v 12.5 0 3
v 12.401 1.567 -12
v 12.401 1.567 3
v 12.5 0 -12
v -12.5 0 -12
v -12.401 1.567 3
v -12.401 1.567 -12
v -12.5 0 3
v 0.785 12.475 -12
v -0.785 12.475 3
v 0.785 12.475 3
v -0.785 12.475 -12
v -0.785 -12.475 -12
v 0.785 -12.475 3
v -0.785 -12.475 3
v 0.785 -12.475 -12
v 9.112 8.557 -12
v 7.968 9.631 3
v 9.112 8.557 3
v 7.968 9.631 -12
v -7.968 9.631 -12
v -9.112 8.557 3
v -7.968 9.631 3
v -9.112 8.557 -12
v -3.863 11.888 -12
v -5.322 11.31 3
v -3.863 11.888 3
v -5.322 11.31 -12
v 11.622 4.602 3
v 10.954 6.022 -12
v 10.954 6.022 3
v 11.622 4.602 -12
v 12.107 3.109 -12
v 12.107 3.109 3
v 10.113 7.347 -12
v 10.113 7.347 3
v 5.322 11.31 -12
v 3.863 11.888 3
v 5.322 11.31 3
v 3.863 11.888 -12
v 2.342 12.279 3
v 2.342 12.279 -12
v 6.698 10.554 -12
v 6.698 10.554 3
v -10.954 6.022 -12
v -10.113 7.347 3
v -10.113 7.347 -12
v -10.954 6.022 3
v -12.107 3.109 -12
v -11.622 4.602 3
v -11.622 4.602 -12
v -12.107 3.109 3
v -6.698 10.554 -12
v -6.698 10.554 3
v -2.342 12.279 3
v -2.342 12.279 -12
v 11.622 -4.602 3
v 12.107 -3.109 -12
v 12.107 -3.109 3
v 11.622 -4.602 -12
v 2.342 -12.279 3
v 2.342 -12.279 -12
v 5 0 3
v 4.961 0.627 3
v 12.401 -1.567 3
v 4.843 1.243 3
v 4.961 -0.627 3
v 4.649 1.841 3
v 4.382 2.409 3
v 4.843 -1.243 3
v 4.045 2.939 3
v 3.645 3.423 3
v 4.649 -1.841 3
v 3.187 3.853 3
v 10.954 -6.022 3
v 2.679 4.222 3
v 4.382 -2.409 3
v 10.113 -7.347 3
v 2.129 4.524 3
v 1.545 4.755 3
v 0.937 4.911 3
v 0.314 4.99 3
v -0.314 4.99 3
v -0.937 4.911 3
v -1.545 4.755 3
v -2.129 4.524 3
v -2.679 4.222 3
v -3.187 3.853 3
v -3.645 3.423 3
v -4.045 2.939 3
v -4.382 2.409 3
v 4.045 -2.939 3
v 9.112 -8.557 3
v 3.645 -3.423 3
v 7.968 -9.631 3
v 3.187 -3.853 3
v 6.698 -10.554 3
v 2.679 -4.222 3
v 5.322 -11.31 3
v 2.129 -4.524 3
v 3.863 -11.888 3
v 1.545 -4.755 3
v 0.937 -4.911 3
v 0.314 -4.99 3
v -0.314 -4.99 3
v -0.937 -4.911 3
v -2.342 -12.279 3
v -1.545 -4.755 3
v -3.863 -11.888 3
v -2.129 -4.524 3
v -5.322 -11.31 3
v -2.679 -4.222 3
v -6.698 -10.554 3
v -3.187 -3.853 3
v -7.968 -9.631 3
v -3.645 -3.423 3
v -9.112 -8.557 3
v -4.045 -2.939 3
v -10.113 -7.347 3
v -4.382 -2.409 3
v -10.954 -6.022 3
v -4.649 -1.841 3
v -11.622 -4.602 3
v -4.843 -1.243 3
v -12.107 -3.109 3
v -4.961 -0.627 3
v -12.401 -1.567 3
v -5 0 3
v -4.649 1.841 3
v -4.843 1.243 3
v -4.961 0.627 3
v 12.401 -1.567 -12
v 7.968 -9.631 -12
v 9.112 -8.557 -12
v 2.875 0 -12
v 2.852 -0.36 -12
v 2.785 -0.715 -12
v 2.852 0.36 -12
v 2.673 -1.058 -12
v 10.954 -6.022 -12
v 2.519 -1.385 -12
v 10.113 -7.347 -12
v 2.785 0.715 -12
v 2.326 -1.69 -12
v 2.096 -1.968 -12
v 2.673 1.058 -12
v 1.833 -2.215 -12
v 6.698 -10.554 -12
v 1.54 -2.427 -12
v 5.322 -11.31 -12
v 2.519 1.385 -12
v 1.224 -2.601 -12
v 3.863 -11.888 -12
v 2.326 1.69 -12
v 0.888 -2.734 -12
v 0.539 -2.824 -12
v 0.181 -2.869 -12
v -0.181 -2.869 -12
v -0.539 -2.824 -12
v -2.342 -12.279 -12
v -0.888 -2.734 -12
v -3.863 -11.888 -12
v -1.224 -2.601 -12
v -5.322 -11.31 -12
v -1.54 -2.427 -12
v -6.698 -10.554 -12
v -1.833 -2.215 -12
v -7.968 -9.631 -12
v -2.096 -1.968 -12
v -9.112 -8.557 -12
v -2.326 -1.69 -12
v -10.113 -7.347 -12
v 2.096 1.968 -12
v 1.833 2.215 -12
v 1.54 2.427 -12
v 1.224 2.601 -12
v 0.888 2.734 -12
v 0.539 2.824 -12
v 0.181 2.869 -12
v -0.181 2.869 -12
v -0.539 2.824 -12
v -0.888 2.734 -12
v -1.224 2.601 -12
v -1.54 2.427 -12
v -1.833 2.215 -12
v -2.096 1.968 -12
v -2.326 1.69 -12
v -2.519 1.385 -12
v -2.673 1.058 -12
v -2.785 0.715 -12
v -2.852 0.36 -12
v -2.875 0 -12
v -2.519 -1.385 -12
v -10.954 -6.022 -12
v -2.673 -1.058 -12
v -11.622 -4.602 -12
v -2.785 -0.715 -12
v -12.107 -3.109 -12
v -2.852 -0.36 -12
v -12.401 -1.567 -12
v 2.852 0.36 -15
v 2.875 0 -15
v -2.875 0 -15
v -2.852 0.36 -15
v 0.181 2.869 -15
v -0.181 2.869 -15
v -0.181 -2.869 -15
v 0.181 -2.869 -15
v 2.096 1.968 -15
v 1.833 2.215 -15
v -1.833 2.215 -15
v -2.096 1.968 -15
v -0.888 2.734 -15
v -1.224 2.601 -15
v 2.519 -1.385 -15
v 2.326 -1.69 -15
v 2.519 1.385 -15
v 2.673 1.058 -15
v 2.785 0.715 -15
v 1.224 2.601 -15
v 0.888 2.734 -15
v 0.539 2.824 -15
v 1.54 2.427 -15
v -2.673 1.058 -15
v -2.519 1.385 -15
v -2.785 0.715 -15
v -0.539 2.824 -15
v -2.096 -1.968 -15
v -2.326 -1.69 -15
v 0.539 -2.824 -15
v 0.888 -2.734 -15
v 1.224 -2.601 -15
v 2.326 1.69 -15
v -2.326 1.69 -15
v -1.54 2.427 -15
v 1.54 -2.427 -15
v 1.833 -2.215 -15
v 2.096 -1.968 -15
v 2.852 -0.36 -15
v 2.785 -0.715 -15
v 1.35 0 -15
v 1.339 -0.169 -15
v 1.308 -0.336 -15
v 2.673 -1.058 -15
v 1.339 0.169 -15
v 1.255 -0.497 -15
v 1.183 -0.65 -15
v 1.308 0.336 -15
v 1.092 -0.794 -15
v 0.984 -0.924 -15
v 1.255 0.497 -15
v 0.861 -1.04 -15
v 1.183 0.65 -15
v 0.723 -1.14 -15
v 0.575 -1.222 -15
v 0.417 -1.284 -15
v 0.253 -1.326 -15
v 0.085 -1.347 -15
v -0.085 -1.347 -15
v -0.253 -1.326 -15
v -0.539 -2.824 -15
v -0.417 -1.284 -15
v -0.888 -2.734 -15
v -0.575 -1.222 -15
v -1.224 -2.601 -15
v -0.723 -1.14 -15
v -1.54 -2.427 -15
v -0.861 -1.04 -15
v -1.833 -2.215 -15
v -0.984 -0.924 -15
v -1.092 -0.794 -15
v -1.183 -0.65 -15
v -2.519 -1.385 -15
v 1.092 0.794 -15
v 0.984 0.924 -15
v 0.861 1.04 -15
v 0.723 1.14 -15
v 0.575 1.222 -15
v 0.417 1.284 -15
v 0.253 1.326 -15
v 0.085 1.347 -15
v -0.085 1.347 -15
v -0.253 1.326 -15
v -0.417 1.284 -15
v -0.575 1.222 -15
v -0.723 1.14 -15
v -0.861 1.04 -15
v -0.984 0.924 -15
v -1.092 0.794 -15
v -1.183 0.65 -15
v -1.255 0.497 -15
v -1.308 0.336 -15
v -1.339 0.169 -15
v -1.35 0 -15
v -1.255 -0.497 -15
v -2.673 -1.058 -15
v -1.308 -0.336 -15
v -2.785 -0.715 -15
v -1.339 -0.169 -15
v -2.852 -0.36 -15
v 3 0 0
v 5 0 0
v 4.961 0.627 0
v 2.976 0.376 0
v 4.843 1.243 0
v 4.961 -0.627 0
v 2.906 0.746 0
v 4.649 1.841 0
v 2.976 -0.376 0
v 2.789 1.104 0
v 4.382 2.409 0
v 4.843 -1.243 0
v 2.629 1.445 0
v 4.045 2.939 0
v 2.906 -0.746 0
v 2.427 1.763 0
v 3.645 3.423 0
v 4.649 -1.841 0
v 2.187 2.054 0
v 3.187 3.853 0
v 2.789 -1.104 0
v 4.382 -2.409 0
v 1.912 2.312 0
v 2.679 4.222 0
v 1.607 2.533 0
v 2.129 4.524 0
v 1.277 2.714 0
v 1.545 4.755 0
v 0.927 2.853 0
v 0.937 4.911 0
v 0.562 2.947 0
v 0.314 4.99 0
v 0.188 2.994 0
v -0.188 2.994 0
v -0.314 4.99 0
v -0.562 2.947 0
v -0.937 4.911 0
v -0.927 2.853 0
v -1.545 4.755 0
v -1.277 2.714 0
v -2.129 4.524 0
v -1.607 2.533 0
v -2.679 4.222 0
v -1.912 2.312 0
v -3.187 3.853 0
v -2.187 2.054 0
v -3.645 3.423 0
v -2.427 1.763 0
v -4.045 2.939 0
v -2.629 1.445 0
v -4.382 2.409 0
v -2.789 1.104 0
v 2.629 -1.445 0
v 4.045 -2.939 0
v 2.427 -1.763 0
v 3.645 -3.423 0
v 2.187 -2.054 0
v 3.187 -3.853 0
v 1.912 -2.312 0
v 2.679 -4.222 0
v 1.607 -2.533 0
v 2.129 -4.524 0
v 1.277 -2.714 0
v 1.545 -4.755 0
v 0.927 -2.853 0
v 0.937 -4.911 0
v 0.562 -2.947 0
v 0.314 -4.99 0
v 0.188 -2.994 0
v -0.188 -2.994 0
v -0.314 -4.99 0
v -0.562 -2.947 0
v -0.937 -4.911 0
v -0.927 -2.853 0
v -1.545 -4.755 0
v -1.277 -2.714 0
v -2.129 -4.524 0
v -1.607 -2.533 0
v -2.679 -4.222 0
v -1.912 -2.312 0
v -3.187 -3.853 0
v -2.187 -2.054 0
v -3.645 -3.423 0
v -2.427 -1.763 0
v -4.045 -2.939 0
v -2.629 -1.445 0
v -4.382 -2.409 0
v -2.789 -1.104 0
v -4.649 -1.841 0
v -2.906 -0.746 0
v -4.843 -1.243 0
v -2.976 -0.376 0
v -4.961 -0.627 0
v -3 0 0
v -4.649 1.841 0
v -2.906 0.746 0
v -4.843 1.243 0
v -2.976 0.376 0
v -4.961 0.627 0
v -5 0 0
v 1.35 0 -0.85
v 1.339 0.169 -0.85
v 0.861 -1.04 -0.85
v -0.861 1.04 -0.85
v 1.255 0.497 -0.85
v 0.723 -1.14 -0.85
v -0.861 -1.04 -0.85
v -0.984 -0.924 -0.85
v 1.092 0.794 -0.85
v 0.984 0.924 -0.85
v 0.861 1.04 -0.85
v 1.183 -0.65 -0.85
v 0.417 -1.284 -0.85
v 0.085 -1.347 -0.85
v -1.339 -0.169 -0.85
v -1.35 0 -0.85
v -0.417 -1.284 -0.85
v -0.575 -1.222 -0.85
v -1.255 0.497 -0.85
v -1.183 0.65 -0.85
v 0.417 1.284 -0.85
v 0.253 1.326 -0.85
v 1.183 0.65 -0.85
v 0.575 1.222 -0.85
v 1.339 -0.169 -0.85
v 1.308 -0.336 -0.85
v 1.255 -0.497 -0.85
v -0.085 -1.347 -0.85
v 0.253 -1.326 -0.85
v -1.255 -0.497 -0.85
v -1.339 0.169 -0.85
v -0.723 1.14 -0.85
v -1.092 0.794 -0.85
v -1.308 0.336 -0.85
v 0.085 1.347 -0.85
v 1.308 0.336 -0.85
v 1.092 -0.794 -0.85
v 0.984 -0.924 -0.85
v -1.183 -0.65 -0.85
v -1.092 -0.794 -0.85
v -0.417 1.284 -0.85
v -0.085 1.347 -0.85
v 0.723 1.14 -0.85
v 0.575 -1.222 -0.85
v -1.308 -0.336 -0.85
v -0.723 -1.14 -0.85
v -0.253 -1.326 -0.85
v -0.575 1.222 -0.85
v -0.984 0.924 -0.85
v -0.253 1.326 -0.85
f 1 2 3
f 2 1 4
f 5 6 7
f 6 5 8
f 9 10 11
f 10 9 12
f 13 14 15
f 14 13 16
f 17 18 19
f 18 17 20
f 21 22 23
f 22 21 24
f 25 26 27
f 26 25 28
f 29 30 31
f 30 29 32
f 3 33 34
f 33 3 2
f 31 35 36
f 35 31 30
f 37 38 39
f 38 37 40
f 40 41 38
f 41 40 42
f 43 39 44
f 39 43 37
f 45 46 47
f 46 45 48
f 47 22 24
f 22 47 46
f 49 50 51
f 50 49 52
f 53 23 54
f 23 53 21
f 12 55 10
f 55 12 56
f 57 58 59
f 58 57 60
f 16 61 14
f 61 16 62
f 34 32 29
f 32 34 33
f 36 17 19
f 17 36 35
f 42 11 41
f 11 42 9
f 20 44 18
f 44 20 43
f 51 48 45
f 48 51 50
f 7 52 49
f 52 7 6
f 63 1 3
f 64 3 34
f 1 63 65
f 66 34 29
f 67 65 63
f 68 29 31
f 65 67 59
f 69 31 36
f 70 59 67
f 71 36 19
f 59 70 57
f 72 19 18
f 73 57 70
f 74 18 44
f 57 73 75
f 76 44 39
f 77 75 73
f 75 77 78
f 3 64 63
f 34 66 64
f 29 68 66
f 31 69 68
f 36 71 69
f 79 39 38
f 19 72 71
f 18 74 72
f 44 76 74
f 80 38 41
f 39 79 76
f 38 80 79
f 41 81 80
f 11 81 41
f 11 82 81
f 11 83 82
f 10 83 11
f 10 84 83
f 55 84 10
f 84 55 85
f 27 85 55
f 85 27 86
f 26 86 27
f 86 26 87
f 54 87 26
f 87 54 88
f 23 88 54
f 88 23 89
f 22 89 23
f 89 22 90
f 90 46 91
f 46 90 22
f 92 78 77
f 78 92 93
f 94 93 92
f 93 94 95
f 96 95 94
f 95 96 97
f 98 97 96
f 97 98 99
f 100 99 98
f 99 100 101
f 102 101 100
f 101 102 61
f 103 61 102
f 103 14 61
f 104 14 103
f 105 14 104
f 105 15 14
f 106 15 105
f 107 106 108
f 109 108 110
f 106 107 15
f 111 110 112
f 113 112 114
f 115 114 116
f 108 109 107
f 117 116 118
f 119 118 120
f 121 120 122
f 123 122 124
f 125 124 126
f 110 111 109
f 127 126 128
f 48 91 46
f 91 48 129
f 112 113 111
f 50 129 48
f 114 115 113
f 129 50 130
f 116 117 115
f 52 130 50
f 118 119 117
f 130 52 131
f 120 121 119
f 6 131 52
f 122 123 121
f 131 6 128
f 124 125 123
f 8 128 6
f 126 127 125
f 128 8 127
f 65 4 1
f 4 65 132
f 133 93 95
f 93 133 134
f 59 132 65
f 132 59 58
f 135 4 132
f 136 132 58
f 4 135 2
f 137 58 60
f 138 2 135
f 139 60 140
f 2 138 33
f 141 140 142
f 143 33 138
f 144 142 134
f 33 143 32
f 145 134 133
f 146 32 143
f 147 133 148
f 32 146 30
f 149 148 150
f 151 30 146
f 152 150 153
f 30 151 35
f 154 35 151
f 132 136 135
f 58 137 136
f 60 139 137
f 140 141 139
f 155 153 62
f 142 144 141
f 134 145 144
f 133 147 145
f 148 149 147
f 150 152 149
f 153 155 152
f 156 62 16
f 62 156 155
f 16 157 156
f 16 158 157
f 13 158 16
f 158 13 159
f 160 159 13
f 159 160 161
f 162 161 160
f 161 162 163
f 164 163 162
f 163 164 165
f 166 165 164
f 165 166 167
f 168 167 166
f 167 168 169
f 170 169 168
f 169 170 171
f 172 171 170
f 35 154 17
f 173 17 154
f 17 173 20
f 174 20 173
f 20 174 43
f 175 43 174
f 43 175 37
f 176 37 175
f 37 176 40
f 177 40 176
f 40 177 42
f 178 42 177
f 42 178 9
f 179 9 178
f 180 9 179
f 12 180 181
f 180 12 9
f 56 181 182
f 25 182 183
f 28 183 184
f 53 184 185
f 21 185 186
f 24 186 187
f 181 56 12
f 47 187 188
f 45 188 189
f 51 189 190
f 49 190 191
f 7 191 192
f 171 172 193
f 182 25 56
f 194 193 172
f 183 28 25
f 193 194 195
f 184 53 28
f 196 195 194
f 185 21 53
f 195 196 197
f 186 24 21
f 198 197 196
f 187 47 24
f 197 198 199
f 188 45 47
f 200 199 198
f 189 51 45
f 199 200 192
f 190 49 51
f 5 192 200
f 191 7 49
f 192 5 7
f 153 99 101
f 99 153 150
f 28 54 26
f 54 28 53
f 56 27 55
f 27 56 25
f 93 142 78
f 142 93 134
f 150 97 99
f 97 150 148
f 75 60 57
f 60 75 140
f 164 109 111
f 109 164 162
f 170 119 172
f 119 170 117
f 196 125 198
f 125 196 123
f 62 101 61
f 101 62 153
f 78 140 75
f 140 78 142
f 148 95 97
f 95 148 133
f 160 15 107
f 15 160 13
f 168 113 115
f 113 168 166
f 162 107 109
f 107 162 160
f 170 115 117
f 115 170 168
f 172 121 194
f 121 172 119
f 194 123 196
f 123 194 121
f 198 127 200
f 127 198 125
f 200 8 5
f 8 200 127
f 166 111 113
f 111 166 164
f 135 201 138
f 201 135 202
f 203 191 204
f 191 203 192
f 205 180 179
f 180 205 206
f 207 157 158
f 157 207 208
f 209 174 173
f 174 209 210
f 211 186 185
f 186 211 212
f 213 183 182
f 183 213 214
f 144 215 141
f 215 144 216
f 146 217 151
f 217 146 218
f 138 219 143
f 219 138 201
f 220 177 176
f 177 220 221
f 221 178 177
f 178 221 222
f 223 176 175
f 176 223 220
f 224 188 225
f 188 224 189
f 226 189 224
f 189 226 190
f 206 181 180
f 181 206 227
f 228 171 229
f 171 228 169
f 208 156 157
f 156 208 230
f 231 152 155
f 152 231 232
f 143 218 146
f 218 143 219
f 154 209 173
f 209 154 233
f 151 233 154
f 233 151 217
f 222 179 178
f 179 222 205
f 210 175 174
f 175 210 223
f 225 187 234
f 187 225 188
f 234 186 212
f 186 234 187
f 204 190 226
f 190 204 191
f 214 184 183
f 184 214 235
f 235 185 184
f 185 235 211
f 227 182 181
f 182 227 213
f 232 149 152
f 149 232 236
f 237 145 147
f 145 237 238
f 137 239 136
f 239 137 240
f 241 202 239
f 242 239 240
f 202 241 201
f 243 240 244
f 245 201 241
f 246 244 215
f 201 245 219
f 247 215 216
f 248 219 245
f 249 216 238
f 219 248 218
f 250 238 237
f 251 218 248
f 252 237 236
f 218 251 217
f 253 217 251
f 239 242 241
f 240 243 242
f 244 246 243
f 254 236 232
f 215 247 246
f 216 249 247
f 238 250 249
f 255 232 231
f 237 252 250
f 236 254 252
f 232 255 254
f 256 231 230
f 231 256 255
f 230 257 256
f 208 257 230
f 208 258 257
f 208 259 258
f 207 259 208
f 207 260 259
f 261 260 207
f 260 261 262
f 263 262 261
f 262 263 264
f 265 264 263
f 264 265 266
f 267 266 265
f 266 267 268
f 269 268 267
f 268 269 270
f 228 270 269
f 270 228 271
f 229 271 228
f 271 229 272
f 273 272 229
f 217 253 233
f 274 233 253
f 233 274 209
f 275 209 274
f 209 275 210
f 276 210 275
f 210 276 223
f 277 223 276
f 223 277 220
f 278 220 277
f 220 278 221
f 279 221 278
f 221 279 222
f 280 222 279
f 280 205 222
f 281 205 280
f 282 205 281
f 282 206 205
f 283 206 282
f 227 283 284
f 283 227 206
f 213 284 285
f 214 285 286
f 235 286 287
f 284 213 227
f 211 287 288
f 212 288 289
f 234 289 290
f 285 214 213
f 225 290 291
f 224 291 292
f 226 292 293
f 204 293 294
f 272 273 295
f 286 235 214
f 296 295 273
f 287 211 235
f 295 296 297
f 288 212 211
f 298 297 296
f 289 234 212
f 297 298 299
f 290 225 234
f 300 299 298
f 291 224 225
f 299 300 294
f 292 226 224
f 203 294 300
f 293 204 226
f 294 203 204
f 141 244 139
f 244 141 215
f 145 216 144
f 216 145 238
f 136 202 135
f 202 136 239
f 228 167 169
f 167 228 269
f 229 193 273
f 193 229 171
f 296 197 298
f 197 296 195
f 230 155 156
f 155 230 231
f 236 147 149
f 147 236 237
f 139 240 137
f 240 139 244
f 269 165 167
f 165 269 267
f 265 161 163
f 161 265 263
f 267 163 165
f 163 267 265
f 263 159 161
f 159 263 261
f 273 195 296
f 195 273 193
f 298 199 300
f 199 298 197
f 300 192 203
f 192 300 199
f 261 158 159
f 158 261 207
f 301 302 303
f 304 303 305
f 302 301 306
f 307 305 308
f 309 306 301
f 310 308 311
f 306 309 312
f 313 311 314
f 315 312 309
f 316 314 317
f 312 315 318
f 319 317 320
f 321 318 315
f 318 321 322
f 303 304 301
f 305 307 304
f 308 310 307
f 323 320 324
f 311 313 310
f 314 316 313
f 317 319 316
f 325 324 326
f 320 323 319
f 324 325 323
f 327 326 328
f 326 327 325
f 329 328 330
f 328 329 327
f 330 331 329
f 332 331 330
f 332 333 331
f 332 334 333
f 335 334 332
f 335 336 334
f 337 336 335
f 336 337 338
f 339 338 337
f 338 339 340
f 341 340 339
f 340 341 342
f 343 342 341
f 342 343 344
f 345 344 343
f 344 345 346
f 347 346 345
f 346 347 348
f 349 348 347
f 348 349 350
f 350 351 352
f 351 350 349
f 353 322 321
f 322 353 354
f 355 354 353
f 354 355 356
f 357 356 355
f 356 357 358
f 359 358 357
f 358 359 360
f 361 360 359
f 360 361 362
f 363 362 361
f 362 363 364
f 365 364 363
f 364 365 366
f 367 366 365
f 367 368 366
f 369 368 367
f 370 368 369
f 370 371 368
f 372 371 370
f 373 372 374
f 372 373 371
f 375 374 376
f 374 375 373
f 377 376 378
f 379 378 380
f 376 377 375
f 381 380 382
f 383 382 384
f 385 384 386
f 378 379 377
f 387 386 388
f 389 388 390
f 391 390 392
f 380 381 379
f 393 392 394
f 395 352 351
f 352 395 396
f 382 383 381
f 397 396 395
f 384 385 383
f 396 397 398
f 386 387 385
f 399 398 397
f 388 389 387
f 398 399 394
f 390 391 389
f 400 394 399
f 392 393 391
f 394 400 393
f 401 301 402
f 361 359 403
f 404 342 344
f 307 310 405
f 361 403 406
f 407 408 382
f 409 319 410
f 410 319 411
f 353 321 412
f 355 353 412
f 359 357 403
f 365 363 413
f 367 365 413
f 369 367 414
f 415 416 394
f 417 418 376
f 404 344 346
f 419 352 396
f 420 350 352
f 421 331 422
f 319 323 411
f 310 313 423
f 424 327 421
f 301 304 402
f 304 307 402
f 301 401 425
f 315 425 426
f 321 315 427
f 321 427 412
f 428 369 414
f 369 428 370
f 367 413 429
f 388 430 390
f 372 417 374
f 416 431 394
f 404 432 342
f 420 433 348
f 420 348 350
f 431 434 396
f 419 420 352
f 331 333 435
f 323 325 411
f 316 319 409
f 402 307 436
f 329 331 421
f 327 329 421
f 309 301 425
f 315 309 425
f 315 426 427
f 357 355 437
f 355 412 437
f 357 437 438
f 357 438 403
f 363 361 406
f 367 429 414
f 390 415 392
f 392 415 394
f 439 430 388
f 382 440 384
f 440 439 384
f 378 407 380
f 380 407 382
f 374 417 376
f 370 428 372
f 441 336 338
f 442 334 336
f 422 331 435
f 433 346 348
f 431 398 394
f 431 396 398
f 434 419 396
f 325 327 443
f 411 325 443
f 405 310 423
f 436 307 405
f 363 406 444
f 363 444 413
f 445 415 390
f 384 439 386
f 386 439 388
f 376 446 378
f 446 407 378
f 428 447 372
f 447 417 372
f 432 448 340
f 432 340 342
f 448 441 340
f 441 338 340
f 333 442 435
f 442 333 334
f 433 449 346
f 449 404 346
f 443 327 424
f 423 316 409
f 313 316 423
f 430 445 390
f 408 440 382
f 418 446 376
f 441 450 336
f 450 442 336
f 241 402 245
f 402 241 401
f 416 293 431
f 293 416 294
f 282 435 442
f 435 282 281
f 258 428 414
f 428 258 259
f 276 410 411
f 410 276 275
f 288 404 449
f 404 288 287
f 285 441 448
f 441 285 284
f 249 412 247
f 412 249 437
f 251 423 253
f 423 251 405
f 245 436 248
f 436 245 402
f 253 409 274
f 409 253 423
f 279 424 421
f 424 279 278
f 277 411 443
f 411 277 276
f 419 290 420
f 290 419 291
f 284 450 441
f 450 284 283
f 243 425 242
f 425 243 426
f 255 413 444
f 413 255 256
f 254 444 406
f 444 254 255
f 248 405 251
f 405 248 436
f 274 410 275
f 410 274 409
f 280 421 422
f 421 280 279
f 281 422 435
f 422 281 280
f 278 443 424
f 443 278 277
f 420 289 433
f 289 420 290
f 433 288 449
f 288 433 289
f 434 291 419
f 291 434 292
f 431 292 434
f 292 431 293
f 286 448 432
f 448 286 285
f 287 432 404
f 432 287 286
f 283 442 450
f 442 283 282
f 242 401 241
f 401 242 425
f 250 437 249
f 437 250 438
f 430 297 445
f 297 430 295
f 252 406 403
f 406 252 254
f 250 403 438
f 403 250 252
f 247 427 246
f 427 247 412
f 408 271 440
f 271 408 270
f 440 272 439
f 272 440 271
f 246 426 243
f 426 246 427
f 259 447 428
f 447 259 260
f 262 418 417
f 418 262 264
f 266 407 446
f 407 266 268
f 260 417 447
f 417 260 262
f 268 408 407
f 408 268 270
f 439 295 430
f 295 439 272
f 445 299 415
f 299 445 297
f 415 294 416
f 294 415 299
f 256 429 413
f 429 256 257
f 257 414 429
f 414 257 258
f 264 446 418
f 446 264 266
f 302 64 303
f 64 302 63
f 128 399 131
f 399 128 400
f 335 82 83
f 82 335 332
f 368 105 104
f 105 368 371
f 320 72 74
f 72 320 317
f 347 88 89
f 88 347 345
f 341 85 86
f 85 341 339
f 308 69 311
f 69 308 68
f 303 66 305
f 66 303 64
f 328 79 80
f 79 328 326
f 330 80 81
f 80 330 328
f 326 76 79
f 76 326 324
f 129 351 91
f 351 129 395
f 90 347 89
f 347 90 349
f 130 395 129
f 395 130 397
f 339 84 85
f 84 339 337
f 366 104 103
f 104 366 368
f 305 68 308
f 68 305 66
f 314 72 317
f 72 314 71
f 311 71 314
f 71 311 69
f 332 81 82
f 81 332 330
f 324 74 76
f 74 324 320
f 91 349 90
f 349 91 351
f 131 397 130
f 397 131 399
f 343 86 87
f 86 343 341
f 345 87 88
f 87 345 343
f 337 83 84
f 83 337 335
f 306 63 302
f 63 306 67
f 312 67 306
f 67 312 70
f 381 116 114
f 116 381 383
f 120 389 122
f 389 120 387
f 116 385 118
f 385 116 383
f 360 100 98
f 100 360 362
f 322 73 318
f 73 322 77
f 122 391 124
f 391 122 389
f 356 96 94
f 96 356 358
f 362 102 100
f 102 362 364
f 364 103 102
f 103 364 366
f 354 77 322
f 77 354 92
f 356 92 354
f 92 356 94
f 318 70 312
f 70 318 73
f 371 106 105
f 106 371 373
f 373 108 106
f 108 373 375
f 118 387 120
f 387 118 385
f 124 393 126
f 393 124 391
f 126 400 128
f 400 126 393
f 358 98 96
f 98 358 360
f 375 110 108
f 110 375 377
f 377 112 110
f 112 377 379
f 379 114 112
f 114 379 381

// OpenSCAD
$fn = 50;


difference() {
	union() {
		translate(v = [0, 0, -12.0000000000]) {
			cylinder(h = 15, r = 12.5000000000);
		}
		#translate(v = [0, 0, -15.0000000000]) {
			cylinder(h = 15, r = 2.8750000000);
		}
	}
	union() {
		translate(v = [0, 0, 0]) {
			rotate(a = [0, 0, 0]) {
				difference() {
					union() {
						translate(v = [0, 0, -15.0000000000]) {
							cylinder(h = 15, r = 1.0000000000);
						}
						translate(v = [0, 0, -0.8500000000]) {
							cylinder(h = 0.8500000000, r1 = 1.3500000000, r2 = 3.0000000000);
						}
						translate(v = [0, 0, -15.0000000000]) {
							cylinder(h = 15, r = 1.3500000000);
						}
						translate(v = [0, 0, -15.0000000000]) {
							cylinder(h = 15, r = 1.0000000000);
						}
					}
					union();
				}
			}
		}
		#cylinder(h = 3, r = 5.0000000000);
	}
}
